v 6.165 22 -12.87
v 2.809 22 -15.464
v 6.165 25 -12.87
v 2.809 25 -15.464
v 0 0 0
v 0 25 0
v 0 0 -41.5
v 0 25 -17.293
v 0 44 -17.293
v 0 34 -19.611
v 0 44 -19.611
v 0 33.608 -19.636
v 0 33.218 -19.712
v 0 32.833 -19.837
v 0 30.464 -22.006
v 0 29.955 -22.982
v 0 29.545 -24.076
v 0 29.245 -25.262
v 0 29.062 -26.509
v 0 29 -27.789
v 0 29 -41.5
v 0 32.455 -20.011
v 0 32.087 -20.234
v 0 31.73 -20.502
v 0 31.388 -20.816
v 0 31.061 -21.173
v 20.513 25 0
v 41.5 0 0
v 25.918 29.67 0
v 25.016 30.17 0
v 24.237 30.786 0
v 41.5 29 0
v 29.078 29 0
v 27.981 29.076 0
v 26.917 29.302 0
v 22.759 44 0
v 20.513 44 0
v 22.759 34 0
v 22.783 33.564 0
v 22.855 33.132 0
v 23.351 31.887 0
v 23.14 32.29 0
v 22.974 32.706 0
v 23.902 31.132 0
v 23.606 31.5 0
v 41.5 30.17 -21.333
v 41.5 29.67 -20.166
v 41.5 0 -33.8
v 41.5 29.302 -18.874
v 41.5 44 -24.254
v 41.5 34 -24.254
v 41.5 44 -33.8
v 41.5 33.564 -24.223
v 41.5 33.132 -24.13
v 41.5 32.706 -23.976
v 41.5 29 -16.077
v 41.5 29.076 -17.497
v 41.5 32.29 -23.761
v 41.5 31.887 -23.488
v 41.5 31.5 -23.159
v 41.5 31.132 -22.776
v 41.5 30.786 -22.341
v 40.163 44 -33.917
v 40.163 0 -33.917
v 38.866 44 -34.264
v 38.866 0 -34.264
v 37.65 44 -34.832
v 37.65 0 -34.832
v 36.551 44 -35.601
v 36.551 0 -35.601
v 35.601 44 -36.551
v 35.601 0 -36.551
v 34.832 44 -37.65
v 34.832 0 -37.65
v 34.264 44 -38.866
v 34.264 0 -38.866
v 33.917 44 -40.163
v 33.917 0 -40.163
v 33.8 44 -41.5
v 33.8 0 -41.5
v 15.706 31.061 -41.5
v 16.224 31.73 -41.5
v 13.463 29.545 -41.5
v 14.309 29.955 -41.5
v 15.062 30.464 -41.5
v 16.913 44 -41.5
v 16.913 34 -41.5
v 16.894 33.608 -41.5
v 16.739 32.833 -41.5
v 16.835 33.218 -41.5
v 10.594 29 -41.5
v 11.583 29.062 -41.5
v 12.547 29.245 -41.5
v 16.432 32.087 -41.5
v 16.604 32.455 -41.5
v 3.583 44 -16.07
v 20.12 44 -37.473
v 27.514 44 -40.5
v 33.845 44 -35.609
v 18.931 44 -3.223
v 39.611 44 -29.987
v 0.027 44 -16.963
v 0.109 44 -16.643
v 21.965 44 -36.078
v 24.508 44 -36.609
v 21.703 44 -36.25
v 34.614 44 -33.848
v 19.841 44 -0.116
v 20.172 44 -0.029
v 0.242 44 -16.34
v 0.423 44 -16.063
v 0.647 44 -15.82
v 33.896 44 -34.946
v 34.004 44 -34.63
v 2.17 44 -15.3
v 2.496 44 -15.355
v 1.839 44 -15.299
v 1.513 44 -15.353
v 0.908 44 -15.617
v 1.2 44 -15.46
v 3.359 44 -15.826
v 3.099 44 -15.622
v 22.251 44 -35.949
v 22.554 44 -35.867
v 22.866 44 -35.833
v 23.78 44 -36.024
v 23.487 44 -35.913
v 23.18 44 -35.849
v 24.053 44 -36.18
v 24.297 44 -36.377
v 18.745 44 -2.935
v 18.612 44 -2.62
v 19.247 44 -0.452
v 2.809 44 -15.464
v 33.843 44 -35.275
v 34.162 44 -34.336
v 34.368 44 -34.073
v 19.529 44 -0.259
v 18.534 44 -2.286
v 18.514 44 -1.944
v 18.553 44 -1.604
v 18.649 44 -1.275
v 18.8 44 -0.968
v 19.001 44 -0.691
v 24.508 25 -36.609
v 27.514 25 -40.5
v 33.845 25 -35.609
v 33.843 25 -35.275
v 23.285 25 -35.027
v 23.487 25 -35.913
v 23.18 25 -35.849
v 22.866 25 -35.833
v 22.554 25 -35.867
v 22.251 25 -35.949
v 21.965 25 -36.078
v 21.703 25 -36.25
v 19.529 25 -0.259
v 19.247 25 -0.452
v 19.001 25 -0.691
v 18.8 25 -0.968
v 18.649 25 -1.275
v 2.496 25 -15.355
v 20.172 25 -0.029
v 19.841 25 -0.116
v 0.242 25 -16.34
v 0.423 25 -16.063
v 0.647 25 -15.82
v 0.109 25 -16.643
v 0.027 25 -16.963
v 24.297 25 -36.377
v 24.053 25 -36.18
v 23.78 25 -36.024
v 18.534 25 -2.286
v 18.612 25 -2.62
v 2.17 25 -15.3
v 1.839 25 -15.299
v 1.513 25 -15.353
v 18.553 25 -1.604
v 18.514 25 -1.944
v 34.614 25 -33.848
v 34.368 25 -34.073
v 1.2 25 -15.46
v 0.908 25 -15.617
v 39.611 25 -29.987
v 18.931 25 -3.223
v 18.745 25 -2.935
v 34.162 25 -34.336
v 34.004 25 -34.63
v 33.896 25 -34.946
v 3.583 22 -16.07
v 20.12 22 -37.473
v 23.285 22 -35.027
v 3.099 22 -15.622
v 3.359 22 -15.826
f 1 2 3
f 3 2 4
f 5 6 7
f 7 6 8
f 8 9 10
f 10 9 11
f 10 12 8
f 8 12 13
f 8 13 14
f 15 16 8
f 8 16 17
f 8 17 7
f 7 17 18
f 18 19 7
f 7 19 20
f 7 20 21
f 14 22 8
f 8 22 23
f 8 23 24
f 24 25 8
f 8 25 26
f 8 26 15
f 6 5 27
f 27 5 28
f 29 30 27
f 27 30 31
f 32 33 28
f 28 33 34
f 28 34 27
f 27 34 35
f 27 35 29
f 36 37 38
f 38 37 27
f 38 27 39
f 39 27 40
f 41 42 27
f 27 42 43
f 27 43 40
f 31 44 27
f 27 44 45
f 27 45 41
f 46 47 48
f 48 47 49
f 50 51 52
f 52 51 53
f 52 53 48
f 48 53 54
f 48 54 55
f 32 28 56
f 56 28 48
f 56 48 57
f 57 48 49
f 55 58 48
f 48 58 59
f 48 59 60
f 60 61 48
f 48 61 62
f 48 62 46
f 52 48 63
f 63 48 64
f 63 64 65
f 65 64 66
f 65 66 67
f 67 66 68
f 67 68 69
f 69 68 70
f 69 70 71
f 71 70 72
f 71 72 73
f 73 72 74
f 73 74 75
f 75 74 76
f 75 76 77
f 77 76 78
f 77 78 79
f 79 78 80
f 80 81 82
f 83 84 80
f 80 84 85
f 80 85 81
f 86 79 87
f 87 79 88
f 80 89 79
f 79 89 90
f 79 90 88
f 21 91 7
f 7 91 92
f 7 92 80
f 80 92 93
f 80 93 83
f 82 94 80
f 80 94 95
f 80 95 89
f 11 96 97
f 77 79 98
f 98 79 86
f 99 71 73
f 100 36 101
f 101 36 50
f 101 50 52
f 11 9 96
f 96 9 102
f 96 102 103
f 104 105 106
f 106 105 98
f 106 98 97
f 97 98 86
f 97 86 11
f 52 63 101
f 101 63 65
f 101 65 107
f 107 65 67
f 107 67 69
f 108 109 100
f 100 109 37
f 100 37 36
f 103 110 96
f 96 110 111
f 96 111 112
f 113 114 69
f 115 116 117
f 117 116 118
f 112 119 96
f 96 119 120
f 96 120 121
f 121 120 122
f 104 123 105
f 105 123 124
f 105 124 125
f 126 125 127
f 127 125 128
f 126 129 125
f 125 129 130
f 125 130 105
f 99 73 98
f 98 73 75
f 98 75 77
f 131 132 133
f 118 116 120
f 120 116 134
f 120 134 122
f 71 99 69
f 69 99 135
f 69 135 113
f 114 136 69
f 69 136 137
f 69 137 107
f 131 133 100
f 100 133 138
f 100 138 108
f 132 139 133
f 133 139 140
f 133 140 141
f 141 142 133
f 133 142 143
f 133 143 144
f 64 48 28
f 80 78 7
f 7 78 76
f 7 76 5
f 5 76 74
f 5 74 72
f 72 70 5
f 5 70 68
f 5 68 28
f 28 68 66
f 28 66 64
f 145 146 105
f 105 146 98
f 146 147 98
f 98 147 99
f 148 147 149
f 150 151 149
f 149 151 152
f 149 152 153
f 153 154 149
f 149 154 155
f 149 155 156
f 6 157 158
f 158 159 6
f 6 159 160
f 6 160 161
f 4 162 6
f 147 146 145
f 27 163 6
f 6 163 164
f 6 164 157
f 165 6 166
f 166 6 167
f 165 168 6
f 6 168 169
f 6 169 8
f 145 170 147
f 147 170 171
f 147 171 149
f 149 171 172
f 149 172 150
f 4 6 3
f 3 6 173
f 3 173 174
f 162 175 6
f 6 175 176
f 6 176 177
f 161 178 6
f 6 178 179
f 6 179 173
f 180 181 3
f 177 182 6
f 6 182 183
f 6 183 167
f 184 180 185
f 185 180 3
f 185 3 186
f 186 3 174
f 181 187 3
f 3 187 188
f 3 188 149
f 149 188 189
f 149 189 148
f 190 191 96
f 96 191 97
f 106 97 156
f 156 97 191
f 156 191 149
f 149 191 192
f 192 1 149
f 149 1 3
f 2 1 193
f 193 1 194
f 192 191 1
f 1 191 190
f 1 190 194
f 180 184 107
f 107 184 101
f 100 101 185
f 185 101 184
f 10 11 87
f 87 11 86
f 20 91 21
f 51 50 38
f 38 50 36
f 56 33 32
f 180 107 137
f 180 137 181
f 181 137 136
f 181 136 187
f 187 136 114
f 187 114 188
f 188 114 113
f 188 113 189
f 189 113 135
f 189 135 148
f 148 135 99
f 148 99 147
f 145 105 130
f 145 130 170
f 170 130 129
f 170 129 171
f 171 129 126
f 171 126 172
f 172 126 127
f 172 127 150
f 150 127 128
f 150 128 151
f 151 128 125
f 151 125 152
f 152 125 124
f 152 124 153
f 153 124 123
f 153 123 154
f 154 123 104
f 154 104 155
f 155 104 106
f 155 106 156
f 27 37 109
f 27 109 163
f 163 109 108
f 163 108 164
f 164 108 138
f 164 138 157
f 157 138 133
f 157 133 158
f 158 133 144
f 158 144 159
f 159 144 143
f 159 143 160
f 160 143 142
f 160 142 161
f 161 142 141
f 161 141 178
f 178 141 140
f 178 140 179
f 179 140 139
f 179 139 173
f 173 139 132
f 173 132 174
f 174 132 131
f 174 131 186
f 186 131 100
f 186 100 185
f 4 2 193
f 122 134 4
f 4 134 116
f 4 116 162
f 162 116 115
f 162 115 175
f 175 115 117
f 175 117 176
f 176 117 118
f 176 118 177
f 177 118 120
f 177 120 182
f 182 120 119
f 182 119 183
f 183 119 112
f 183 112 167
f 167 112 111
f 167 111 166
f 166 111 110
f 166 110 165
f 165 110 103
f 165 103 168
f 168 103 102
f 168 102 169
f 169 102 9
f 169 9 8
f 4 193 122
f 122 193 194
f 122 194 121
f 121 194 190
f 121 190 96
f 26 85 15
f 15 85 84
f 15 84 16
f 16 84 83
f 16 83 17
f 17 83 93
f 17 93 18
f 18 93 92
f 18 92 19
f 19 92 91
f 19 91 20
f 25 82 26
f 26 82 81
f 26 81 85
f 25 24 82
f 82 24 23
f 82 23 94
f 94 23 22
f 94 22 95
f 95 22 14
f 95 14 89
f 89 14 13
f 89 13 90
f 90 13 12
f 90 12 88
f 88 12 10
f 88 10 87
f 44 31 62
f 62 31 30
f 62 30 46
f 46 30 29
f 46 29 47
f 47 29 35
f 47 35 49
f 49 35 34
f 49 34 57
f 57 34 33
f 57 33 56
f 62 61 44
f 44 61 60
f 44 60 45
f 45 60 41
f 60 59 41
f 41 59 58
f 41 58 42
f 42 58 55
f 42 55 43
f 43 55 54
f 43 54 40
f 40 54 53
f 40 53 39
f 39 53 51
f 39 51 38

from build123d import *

# Parameters (mm, degrees)
BOSS_EXTRUDE1_DEPTH = 44
CUT_EXTRUDE1_DEPTH  = 19
CUT_EXTRUDE2_DEPTH  = 22
CUT_EXTRUDE3_DEPTH  = 19
CUT_EXTRUDE4_DEPTH  = 19
CUT_EXTRUDE5_DEPTH  = 15
FILLET1_R           = 2
FILLET2_R           = 5


with BuildPart() as part:
    # Sketch1 → Boss-Extrude1 (new body)
    with BuildSketch(Plane(origin=(0, 0, 0), x_dir=(1, 0, 0), z_dir=(0, 1, 0))):
        with BuildLine():
            Line((33.8, 41.5), (0, 41.5))
            Line((0, 41.5), (0, 0))
            Line((0, 0), (41.5, 0))
            Line((41.5, 0), (41.5, 33.8))
            ThreePointArc((41.5, 33.8), (36.055277785, 36.055277785), (33.8, 41.5))
        make_face()
    extrude(amount=BOSS_EXTRUDE1_DEPTH)

    # Sketch2 → Cut-Extrude1 (cut)
    with BuildSketch(Plane(origin=(0, 44, 0), x_dir=(1, 0, 0), z_dir=(0, 1, 0))):
        Polygon((6.330417381, 0), (0, 0), (0, 4.89140223), (27.514137546, 40.5), (33.844554927, 35.60859777), align=None)
    extrude(amount=-CUT_EXTRUDE1_DEPTH, mode=Mode.SUBTRACT)

    # Sketch3 → Cut-Extrude2 (cut)
    with BuildSketch(Plane(origin=(0, 44, 0), x_dir=(1, 0, 0), z_dir=(0, 1, 0))):
        Polygon((6.165208691, 12.870370718), (23.285116497, 35.026831552), (20.119907806, 37.472532667), (3, 15.316071833), align=None)
    extrude(amount=-CUT_EXTRUDE2_DEPTH, mode=Mode.SUBTRACT)

    # Sketch5 → Cut-Extrude3 (cut)
    with BuildSketch(Plane(origin=(0, 44, 0), x_dir=(1, 0, 0), z_dir=(0, 1, 0))):
        Polygon((11.268941532, 6.39140223), (33.280251569, 34.878280446), (39.61066895, 29.986878216), (17.599358914, 1.5), align=None)
    extrude(amount=-CUT_EXTRUDE3_DEPTH, mode=Mode.SUBTRACT)

    # Sketch6 → Cut-Extrude4 (cut)
    with BuildSketch(Plane(origin=(0, 44, 0), x_dir=(1, 0, 0), z_dir=(0, 1, 0))):
        Polygon((17.599358914, 1.5), (16.440335282, 0), (0, 0), (0, 11.433493535), (3, 15.316071833), (6.165208691, 12.870370718), (11.268941532, 6.39140223), align=None)
    extrude(amount=-CUT_EXTRUDE4_DEPTH, mode=Mode.SUBTRACT)

    # Sketch7 → Cut-Extrude5 (cut)
    with BuildSketch(Plane(origin=(0, 44, 0), x_dir=(1, 0, 0), z_dir=(0, 1, 0))):
        Polygon((22.759033969, 0), (41.5, 24.254422662), (41.5, 0), align=None)
        Polygon((0, 19.611107666), (16.913162329, 41.5), (0, 41.5), align=None)
    extrude(amount=-CUT_EXTRUDE5_DEPTH, mode=Mode.SUBTRACT)

    # Fillet1
    # the kernel refuses this fillet: 2 mm, written as the material it takes off along each edge
    with BuildSketch(Plane(origin=(33.280251569, 48.213017341, -34.878280446), x_dir=(0.7913021726593984, 0, 0.6114252787908885), z_dir=(0, -1, 0))) as fillet1_piece_1:
        with BuildLine():
            CenterArc((1.685206936, -2), FILLET1_R, 90, 57.416069246)
            Line((0, -0.922931023), (0, 0))
            Line((0, 0), (1.685206936, 0))
        make_face()
    extrude(amount=23.213017341, mode=Mode.SUBTRACT)
    with BuildSketch(Plane(origin=(23.285116497, 49, -35.026831552), x_dir=(0.6114252787908897, 0, -0.7913021726593975), z_dir=(0, -1, 0))) as fillet1_piece_2:
        with BuildLine():
            CenterArc((FILLET1_R, -FILLET1_R), FILLET1_R, 90, 90)
            Line((0, -FILLET1_R), (0, 0))
            Line((0, 0), (FILLET1_R, 0))
        make_face()
    extrude(amount=24, mode=Mode.SUBTRACT)
    with BuildSketch(Plane(origin=(16.440335282, 54.182110795, 0), x_dir=(1, 0, 0), z_dir=(0, -1, 0))) as fillet1_piece_3:
        with BuildLine():
            CenterArc((FILLET1_R * 2.0364221589, -FILLET1_R), FILLET1_R, 90, 127.692631401)
            Line((FILLET1_R * 1.24511998624, -FILLET1_R * 1.61142527879), (0, 0))
            Line((0, 0), (FILLET1_R * 2.0364221589, 0))
        make_face()
    extrude(amount=29.182110795, mode=Mode.SUBTRACT)
    with BuildSketch(Plane(origin=(0, 58.64857796, -11.433493535), x_dir=(0, 0, -1), z_dir=(0, -1, 0))) as fillet1_piece_4:
        with BuildLine():
            CenterArc((FILLET1_R * 2.92971559207, FILLET1_R), FILLET1_R, 127.692631401, 142.307368599)
            Line((FILLET1_R * 2.31829031328, FILLET1_R * 1.79130217266), (0, 0))
            Line((0, 0), (FILLET1_R * 2.92971559207, 0))
        make_face()
    extrude(amount=33.64857796, mode=Mode.SUBTRACT)
    with BuildSketch(Plane(origin=(0, 58.64857796, -11.433493535), x_dir=(0, 0, -1), z_dir=(0, -1, 0))) as fillet1_piece_5_section:
        with BuildLine():
            CenterArc((FILLET1_R * 2.92971559207, FILLET1_R), FILLET1_R, 127.692631401, 142.307368599)
            Line((FILLET1_R * 2.31829031328, FILLET1_R * 1.79130217266), (0, 0))
            Line((0, 0), (FILLET1_R * 2.92971559207, 0))
        make_face()
    fillet1_piece_5 = extrude(amount=48.297155921, mode=Mode.PRIVATE)
    fillet1_piece_5 = split(fillet1_piece_5, bisect_by=Plane(origin=(2.943298817, 23.5, -15.35988384), z_dir=(0.6114252787908899, 0, -0.7913021726593973)), keep=Keep.TOP, mode=Mode.PRIVATE)
    fillet1_piece_5 = split(fillet1_piece_5, bisect_by=Plane(origin=(3.087132223, 22, -15.546031994), z_dir=(0, 1, 0)), keep=Keep.TOP, mode=Mode.PRIVATE)
    add(fillet1_piece_5, mode=Mode.SUBTRACT)

    # Fillet2
    fillet2_edges = [part.edges().sort_by_distance(p)[0] for p in [
        (32.129516985, 29, -12.127211331),
        (8.456581164, 29, -30.555553833),
    ]]
    fillet(fillet2_edges, radius=FILLET2_R)


solid = part.part
